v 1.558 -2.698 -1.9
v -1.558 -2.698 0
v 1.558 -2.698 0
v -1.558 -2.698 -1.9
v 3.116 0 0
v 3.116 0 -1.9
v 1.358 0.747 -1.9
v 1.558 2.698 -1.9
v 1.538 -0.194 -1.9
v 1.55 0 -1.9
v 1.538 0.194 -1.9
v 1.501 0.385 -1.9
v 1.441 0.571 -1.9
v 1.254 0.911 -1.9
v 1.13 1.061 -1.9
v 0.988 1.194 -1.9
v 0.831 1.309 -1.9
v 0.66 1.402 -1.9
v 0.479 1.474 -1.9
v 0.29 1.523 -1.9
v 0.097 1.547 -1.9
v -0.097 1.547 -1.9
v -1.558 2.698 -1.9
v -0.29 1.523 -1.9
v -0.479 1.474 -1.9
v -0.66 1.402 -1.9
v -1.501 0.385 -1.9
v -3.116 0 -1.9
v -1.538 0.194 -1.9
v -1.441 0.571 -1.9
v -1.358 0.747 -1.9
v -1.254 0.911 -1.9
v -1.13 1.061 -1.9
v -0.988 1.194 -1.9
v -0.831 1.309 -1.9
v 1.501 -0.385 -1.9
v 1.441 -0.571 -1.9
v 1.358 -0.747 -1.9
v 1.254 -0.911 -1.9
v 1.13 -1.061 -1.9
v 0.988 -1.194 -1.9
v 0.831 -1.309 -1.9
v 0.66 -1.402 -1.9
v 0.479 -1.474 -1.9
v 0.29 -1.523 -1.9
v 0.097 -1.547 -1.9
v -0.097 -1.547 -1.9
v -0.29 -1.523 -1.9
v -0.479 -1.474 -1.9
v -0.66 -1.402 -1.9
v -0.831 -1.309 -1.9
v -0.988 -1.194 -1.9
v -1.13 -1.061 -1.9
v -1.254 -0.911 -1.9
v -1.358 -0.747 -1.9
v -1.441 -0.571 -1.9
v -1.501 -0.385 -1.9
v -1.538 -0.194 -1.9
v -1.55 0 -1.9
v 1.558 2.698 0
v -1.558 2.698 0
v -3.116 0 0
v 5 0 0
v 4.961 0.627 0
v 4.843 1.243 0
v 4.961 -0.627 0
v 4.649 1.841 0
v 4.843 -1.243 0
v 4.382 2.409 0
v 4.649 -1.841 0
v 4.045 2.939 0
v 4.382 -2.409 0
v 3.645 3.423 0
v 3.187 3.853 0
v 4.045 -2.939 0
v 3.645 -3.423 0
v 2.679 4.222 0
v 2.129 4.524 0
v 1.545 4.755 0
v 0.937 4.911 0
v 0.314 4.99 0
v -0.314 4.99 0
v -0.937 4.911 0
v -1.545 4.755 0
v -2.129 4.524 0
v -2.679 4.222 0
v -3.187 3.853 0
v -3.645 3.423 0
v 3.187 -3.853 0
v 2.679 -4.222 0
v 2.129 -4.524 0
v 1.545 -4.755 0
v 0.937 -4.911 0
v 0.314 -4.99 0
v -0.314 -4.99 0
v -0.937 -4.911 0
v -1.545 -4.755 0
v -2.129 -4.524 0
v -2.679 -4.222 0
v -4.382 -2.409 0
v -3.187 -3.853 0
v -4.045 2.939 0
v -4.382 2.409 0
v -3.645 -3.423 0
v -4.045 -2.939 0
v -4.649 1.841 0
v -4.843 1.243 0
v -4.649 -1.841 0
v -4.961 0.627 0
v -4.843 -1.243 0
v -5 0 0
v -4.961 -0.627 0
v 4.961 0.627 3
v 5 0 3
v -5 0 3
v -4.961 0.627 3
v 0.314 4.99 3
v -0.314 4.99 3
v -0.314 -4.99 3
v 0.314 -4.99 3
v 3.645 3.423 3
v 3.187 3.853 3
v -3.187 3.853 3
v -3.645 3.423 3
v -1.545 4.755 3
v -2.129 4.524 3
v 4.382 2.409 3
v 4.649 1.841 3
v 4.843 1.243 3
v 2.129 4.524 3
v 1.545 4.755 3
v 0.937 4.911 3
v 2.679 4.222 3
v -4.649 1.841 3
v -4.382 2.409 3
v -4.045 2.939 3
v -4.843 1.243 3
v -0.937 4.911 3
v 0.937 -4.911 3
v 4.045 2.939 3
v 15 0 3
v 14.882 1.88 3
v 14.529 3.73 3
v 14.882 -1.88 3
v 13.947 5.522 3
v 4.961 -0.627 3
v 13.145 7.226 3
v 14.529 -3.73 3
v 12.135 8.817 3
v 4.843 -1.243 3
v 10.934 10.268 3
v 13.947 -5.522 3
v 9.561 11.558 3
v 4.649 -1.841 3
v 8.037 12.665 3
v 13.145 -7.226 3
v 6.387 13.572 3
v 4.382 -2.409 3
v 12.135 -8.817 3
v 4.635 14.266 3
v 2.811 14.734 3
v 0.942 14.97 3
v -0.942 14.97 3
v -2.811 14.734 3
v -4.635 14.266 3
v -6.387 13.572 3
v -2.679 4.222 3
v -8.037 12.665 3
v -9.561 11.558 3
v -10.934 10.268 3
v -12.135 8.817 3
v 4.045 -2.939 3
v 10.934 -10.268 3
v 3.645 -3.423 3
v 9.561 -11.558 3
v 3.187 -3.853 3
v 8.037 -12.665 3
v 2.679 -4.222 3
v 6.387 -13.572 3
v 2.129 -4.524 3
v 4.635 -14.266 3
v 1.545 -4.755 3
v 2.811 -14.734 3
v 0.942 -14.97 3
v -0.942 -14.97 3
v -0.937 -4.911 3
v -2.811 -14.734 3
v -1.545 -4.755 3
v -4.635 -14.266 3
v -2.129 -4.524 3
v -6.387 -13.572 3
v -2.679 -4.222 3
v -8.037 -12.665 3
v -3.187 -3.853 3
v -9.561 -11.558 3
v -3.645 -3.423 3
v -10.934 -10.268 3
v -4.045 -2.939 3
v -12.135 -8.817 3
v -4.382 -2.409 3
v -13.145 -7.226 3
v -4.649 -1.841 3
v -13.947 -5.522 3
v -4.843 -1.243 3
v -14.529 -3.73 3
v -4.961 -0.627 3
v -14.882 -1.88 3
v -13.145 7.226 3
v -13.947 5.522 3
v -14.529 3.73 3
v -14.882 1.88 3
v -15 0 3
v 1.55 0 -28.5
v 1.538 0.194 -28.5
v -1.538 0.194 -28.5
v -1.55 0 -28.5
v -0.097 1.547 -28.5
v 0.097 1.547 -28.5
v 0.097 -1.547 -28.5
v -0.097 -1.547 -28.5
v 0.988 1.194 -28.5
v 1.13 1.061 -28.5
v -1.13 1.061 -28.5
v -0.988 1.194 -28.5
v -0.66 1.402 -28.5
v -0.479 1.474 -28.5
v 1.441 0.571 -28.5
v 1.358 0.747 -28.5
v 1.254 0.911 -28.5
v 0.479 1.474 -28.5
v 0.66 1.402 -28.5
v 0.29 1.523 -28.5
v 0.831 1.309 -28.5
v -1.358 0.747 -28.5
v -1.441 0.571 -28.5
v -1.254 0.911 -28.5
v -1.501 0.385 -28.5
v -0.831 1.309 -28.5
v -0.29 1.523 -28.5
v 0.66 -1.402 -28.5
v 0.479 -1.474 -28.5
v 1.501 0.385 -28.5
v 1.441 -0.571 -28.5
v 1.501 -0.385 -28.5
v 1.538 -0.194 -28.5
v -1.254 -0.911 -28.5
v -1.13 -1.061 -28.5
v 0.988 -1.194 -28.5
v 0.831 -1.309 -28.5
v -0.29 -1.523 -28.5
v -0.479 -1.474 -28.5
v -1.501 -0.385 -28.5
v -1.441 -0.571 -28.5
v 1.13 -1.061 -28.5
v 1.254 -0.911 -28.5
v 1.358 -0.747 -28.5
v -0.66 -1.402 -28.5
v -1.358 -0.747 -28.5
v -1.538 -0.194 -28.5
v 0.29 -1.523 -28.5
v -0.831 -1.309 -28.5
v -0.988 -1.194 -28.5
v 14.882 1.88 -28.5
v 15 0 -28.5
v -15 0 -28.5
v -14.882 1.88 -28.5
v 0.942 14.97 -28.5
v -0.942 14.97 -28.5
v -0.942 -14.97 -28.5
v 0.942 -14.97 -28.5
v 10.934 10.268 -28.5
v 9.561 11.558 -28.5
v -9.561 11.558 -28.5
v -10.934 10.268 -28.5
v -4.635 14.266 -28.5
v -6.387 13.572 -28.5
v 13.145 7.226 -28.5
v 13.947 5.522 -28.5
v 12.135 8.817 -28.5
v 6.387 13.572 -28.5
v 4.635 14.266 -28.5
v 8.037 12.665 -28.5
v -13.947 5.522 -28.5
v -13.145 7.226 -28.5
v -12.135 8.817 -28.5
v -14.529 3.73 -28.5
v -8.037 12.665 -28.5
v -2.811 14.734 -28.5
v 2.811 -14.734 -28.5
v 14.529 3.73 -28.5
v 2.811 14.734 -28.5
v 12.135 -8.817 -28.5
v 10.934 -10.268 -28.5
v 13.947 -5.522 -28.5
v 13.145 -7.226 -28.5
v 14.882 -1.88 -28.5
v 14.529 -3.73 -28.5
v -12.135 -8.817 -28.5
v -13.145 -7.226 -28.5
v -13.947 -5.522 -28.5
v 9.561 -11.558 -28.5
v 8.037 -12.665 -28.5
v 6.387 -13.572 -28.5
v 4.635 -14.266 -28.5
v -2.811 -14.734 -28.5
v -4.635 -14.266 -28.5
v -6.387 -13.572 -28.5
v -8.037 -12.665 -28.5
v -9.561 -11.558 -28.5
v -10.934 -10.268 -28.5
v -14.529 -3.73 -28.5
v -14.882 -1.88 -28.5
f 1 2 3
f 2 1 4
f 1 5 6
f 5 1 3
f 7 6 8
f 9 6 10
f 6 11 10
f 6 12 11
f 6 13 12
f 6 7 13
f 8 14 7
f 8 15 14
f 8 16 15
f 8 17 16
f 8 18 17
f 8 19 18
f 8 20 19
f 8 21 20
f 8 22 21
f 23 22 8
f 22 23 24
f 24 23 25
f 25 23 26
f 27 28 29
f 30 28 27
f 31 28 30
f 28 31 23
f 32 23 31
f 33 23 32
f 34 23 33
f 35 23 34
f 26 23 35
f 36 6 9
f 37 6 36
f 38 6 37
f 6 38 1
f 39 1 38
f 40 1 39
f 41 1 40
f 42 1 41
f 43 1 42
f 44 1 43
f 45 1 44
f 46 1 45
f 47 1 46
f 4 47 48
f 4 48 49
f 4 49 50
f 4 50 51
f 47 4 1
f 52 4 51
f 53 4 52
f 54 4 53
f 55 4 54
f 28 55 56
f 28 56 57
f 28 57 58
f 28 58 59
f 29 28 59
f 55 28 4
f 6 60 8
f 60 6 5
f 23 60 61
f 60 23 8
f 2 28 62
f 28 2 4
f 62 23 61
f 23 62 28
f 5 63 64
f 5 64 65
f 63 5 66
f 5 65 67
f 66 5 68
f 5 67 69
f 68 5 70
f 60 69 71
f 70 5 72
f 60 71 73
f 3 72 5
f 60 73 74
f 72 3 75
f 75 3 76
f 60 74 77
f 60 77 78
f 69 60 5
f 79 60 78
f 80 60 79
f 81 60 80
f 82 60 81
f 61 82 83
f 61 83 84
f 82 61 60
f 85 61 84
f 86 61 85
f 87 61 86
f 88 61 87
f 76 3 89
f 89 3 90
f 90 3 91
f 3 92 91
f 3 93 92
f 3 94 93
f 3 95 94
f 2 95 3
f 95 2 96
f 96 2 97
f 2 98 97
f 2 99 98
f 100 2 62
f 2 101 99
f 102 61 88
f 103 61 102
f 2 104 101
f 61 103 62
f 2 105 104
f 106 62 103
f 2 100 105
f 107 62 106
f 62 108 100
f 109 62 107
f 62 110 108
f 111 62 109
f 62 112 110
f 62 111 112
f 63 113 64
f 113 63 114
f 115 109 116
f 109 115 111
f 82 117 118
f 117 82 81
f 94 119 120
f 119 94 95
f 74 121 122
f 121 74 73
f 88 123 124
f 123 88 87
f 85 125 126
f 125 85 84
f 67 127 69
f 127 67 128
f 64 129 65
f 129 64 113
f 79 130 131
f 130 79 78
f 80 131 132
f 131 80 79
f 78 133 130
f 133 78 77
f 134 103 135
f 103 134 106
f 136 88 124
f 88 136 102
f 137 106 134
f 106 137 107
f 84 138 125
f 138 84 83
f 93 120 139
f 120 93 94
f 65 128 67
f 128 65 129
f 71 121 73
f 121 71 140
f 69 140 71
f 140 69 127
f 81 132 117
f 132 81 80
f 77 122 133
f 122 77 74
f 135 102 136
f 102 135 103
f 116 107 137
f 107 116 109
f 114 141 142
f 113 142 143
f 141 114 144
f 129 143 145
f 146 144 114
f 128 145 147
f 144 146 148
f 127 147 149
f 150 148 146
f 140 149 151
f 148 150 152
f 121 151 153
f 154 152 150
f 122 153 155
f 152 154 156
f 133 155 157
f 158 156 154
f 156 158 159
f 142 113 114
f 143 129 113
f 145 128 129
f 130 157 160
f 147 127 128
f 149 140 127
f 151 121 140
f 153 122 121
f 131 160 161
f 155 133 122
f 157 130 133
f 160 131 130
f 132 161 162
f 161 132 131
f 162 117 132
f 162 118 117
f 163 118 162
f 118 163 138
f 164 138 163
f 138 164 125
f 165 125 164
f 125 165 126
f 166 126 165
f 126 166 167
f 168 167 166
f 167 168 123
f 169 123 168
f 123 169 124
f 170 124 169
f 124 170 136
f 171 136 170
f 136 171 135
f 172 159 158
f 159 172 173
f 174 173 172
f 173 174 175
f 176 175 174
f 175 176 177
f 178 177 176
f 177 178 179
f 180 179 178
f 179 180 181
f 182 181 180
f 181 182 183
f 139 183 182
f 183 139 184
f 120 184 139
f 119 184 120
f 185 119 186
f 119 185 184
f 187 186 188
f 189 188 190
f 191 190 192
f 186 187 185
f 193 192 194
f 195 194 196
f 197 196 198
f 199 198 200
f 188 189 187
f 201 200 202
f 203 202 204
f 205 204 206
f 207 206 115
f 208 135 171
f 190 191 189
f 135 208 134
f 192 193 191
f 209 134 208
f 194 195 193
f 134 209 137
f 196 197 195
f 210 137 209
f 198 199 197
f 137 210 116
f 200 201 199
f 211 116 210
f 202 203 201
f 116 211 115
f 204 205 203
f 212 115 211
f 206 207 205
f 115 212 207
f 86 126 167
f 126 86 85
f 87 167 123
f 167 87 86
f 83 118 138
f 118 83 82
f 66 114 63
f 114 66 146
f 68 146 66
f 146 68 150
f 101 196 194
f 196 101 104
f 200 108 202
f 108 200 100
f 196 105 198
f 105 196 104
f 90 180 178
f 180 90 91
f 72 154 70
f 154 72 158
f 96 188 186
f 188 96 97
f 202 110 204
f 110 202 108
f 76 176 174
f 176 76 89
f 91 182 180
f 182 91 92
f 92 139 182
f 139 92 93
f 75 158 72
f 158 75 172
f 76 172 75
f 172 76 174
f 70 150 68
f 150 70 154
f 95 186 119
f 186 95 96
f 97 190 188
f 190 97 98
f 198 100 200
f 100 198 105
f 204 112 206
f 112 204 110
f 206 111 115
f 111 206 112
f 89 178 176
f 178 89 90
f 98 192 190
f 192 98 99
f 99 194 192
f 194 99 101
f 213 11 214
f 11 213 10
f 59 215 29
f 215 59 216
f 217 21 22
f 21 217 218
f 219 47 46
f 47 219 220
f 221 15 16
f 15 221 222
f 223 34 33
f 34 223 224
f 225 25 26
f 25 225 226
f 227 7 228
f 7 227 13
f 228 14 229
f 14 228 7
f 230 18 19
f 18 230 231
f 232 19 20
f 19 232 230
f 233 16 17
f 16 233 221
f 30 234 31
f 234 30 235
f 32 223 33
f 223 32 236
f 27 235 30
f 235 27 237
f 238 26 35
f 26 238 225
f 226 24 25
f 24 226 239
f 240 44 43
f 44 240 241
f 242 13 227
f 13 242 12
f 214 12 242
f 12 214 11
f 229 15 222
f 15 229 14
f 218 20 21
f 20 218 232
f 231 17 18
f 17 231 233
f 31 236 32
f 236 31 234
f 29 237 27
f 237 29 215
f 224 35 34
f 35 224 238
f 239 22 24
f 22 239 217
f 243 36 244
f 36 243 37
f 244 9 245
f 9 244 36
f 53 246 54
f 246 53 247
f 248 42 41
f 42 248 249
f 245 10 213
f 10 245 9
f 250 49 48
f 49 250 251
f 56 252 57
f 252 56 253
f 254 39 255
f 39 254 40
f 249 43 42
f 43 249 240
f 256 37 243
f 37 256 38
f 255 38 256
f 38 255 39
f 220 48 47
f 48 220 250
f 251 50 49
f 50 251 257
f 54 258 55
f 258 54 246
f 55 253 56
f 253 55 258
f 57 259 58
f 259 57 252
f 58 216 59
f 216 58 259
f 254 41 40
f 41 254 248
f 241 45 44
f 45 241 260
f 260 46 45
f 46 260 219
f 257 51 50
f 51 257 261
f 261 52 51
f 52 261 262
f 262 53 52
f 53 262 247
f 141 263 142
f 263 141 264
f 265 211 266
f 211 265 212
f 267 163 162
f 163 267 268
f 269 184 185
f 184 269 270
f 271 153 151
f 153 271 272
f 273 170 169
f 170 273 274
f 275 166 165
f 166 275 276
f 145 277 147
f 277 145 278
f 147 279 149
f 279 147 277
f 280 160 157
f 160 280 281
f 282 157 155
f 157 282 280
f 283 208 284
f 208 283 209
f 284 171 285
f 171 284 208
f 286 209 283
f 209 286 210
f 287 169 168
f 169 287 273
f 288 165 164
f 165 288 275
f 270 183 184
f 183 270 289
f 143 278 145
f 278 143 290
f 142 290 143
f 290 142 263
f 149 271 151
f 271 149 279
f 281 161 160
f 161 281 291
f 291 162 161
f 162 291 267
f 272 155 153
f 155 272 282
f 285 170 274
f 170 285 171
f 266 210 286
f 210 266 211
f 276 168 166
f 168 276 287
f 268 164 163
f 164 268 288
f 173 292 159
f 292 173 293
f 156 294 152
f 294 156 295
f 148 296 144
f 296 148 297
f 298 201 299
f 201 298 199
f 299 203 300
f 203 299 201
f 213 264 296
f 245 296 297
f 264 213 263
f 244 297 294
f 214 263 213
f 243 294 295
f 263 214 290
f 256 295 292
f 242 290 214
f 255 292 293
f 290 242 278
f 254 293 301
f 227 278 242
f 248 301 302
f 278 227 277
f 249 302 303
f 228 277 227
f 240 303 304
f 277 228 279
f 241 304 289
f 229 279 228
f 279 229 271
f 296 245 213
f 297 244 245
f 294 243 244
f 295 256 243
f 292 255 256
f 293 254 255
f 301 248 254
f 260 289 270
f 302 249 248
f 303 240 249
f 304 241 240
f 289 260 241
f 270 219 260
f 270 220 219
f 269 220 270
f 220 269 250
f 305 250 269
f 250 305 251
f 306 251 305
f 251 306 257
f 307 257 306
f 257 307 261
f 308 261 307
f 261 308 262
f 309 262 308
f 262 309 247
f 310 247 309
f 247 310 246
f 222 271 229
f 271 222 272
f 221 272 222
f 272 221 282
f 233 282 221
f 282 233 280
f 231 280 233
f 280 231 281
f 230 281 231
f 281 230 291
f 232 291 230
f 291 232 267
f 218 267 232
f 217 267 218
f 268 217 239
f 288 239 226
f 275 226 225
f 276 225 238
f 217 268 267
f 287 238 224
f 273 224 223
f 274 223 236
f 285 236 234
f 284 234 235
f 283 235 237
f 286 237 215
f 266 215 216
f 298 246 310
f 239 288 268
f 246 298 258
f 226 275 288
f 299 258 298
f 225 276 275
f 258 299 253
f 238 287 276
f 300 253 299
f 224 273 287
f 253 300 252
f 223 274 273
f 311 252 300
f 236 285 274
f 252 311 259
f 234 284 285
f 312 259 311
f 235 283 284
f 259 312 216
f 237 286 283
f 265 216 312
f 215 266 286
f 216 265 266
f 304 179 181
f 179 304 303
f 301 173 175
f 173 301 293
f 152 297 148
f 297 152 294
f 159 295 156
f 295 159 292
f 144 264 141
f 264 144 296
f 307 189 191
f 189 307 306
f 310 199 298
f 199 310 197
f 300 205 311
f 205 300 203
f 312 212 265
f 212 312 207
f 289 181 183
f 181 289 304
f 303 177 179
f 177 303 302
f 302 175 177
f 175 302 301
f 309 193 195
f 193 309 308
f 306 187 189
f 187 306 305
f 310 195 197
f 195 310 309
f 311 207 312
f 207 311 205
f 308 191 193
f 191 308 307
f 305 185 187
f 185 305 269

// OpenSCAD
$fn = 50;

difference() {
	union() {
		translate(v = [0, 0, -28.5]) {
			cylinder(h = 31.5, r = 15.0);
		}
	}
	union() {
		translate(v = [0, 0, 0]) {
			rotate(a = [0, 0, 0]) {
				difference() {
					union() {
						translate(v = [0, 0, -1.9]) {
							linear_extrude(height = 1.9) {
								polygon(points = [[3.1158, 0.0], [1.5579000000000005, 2.698361953111554], [-1.5578999999999994, 2.6983619531115544], [-3.1158, 3.815754496783323e-16], [-1.5579000000000014, -2.6983619531115535], [1.557899999999998, -2.6983619531115552]]);
							}
						}
					}
					union();
				}
			}
		}
		#cylinder(h = 3, r = 5.0);
		#translate(v = [0, 0, -100.0]) {
			cylinder(h = 200, r = 1.55);
		}
	}
}
